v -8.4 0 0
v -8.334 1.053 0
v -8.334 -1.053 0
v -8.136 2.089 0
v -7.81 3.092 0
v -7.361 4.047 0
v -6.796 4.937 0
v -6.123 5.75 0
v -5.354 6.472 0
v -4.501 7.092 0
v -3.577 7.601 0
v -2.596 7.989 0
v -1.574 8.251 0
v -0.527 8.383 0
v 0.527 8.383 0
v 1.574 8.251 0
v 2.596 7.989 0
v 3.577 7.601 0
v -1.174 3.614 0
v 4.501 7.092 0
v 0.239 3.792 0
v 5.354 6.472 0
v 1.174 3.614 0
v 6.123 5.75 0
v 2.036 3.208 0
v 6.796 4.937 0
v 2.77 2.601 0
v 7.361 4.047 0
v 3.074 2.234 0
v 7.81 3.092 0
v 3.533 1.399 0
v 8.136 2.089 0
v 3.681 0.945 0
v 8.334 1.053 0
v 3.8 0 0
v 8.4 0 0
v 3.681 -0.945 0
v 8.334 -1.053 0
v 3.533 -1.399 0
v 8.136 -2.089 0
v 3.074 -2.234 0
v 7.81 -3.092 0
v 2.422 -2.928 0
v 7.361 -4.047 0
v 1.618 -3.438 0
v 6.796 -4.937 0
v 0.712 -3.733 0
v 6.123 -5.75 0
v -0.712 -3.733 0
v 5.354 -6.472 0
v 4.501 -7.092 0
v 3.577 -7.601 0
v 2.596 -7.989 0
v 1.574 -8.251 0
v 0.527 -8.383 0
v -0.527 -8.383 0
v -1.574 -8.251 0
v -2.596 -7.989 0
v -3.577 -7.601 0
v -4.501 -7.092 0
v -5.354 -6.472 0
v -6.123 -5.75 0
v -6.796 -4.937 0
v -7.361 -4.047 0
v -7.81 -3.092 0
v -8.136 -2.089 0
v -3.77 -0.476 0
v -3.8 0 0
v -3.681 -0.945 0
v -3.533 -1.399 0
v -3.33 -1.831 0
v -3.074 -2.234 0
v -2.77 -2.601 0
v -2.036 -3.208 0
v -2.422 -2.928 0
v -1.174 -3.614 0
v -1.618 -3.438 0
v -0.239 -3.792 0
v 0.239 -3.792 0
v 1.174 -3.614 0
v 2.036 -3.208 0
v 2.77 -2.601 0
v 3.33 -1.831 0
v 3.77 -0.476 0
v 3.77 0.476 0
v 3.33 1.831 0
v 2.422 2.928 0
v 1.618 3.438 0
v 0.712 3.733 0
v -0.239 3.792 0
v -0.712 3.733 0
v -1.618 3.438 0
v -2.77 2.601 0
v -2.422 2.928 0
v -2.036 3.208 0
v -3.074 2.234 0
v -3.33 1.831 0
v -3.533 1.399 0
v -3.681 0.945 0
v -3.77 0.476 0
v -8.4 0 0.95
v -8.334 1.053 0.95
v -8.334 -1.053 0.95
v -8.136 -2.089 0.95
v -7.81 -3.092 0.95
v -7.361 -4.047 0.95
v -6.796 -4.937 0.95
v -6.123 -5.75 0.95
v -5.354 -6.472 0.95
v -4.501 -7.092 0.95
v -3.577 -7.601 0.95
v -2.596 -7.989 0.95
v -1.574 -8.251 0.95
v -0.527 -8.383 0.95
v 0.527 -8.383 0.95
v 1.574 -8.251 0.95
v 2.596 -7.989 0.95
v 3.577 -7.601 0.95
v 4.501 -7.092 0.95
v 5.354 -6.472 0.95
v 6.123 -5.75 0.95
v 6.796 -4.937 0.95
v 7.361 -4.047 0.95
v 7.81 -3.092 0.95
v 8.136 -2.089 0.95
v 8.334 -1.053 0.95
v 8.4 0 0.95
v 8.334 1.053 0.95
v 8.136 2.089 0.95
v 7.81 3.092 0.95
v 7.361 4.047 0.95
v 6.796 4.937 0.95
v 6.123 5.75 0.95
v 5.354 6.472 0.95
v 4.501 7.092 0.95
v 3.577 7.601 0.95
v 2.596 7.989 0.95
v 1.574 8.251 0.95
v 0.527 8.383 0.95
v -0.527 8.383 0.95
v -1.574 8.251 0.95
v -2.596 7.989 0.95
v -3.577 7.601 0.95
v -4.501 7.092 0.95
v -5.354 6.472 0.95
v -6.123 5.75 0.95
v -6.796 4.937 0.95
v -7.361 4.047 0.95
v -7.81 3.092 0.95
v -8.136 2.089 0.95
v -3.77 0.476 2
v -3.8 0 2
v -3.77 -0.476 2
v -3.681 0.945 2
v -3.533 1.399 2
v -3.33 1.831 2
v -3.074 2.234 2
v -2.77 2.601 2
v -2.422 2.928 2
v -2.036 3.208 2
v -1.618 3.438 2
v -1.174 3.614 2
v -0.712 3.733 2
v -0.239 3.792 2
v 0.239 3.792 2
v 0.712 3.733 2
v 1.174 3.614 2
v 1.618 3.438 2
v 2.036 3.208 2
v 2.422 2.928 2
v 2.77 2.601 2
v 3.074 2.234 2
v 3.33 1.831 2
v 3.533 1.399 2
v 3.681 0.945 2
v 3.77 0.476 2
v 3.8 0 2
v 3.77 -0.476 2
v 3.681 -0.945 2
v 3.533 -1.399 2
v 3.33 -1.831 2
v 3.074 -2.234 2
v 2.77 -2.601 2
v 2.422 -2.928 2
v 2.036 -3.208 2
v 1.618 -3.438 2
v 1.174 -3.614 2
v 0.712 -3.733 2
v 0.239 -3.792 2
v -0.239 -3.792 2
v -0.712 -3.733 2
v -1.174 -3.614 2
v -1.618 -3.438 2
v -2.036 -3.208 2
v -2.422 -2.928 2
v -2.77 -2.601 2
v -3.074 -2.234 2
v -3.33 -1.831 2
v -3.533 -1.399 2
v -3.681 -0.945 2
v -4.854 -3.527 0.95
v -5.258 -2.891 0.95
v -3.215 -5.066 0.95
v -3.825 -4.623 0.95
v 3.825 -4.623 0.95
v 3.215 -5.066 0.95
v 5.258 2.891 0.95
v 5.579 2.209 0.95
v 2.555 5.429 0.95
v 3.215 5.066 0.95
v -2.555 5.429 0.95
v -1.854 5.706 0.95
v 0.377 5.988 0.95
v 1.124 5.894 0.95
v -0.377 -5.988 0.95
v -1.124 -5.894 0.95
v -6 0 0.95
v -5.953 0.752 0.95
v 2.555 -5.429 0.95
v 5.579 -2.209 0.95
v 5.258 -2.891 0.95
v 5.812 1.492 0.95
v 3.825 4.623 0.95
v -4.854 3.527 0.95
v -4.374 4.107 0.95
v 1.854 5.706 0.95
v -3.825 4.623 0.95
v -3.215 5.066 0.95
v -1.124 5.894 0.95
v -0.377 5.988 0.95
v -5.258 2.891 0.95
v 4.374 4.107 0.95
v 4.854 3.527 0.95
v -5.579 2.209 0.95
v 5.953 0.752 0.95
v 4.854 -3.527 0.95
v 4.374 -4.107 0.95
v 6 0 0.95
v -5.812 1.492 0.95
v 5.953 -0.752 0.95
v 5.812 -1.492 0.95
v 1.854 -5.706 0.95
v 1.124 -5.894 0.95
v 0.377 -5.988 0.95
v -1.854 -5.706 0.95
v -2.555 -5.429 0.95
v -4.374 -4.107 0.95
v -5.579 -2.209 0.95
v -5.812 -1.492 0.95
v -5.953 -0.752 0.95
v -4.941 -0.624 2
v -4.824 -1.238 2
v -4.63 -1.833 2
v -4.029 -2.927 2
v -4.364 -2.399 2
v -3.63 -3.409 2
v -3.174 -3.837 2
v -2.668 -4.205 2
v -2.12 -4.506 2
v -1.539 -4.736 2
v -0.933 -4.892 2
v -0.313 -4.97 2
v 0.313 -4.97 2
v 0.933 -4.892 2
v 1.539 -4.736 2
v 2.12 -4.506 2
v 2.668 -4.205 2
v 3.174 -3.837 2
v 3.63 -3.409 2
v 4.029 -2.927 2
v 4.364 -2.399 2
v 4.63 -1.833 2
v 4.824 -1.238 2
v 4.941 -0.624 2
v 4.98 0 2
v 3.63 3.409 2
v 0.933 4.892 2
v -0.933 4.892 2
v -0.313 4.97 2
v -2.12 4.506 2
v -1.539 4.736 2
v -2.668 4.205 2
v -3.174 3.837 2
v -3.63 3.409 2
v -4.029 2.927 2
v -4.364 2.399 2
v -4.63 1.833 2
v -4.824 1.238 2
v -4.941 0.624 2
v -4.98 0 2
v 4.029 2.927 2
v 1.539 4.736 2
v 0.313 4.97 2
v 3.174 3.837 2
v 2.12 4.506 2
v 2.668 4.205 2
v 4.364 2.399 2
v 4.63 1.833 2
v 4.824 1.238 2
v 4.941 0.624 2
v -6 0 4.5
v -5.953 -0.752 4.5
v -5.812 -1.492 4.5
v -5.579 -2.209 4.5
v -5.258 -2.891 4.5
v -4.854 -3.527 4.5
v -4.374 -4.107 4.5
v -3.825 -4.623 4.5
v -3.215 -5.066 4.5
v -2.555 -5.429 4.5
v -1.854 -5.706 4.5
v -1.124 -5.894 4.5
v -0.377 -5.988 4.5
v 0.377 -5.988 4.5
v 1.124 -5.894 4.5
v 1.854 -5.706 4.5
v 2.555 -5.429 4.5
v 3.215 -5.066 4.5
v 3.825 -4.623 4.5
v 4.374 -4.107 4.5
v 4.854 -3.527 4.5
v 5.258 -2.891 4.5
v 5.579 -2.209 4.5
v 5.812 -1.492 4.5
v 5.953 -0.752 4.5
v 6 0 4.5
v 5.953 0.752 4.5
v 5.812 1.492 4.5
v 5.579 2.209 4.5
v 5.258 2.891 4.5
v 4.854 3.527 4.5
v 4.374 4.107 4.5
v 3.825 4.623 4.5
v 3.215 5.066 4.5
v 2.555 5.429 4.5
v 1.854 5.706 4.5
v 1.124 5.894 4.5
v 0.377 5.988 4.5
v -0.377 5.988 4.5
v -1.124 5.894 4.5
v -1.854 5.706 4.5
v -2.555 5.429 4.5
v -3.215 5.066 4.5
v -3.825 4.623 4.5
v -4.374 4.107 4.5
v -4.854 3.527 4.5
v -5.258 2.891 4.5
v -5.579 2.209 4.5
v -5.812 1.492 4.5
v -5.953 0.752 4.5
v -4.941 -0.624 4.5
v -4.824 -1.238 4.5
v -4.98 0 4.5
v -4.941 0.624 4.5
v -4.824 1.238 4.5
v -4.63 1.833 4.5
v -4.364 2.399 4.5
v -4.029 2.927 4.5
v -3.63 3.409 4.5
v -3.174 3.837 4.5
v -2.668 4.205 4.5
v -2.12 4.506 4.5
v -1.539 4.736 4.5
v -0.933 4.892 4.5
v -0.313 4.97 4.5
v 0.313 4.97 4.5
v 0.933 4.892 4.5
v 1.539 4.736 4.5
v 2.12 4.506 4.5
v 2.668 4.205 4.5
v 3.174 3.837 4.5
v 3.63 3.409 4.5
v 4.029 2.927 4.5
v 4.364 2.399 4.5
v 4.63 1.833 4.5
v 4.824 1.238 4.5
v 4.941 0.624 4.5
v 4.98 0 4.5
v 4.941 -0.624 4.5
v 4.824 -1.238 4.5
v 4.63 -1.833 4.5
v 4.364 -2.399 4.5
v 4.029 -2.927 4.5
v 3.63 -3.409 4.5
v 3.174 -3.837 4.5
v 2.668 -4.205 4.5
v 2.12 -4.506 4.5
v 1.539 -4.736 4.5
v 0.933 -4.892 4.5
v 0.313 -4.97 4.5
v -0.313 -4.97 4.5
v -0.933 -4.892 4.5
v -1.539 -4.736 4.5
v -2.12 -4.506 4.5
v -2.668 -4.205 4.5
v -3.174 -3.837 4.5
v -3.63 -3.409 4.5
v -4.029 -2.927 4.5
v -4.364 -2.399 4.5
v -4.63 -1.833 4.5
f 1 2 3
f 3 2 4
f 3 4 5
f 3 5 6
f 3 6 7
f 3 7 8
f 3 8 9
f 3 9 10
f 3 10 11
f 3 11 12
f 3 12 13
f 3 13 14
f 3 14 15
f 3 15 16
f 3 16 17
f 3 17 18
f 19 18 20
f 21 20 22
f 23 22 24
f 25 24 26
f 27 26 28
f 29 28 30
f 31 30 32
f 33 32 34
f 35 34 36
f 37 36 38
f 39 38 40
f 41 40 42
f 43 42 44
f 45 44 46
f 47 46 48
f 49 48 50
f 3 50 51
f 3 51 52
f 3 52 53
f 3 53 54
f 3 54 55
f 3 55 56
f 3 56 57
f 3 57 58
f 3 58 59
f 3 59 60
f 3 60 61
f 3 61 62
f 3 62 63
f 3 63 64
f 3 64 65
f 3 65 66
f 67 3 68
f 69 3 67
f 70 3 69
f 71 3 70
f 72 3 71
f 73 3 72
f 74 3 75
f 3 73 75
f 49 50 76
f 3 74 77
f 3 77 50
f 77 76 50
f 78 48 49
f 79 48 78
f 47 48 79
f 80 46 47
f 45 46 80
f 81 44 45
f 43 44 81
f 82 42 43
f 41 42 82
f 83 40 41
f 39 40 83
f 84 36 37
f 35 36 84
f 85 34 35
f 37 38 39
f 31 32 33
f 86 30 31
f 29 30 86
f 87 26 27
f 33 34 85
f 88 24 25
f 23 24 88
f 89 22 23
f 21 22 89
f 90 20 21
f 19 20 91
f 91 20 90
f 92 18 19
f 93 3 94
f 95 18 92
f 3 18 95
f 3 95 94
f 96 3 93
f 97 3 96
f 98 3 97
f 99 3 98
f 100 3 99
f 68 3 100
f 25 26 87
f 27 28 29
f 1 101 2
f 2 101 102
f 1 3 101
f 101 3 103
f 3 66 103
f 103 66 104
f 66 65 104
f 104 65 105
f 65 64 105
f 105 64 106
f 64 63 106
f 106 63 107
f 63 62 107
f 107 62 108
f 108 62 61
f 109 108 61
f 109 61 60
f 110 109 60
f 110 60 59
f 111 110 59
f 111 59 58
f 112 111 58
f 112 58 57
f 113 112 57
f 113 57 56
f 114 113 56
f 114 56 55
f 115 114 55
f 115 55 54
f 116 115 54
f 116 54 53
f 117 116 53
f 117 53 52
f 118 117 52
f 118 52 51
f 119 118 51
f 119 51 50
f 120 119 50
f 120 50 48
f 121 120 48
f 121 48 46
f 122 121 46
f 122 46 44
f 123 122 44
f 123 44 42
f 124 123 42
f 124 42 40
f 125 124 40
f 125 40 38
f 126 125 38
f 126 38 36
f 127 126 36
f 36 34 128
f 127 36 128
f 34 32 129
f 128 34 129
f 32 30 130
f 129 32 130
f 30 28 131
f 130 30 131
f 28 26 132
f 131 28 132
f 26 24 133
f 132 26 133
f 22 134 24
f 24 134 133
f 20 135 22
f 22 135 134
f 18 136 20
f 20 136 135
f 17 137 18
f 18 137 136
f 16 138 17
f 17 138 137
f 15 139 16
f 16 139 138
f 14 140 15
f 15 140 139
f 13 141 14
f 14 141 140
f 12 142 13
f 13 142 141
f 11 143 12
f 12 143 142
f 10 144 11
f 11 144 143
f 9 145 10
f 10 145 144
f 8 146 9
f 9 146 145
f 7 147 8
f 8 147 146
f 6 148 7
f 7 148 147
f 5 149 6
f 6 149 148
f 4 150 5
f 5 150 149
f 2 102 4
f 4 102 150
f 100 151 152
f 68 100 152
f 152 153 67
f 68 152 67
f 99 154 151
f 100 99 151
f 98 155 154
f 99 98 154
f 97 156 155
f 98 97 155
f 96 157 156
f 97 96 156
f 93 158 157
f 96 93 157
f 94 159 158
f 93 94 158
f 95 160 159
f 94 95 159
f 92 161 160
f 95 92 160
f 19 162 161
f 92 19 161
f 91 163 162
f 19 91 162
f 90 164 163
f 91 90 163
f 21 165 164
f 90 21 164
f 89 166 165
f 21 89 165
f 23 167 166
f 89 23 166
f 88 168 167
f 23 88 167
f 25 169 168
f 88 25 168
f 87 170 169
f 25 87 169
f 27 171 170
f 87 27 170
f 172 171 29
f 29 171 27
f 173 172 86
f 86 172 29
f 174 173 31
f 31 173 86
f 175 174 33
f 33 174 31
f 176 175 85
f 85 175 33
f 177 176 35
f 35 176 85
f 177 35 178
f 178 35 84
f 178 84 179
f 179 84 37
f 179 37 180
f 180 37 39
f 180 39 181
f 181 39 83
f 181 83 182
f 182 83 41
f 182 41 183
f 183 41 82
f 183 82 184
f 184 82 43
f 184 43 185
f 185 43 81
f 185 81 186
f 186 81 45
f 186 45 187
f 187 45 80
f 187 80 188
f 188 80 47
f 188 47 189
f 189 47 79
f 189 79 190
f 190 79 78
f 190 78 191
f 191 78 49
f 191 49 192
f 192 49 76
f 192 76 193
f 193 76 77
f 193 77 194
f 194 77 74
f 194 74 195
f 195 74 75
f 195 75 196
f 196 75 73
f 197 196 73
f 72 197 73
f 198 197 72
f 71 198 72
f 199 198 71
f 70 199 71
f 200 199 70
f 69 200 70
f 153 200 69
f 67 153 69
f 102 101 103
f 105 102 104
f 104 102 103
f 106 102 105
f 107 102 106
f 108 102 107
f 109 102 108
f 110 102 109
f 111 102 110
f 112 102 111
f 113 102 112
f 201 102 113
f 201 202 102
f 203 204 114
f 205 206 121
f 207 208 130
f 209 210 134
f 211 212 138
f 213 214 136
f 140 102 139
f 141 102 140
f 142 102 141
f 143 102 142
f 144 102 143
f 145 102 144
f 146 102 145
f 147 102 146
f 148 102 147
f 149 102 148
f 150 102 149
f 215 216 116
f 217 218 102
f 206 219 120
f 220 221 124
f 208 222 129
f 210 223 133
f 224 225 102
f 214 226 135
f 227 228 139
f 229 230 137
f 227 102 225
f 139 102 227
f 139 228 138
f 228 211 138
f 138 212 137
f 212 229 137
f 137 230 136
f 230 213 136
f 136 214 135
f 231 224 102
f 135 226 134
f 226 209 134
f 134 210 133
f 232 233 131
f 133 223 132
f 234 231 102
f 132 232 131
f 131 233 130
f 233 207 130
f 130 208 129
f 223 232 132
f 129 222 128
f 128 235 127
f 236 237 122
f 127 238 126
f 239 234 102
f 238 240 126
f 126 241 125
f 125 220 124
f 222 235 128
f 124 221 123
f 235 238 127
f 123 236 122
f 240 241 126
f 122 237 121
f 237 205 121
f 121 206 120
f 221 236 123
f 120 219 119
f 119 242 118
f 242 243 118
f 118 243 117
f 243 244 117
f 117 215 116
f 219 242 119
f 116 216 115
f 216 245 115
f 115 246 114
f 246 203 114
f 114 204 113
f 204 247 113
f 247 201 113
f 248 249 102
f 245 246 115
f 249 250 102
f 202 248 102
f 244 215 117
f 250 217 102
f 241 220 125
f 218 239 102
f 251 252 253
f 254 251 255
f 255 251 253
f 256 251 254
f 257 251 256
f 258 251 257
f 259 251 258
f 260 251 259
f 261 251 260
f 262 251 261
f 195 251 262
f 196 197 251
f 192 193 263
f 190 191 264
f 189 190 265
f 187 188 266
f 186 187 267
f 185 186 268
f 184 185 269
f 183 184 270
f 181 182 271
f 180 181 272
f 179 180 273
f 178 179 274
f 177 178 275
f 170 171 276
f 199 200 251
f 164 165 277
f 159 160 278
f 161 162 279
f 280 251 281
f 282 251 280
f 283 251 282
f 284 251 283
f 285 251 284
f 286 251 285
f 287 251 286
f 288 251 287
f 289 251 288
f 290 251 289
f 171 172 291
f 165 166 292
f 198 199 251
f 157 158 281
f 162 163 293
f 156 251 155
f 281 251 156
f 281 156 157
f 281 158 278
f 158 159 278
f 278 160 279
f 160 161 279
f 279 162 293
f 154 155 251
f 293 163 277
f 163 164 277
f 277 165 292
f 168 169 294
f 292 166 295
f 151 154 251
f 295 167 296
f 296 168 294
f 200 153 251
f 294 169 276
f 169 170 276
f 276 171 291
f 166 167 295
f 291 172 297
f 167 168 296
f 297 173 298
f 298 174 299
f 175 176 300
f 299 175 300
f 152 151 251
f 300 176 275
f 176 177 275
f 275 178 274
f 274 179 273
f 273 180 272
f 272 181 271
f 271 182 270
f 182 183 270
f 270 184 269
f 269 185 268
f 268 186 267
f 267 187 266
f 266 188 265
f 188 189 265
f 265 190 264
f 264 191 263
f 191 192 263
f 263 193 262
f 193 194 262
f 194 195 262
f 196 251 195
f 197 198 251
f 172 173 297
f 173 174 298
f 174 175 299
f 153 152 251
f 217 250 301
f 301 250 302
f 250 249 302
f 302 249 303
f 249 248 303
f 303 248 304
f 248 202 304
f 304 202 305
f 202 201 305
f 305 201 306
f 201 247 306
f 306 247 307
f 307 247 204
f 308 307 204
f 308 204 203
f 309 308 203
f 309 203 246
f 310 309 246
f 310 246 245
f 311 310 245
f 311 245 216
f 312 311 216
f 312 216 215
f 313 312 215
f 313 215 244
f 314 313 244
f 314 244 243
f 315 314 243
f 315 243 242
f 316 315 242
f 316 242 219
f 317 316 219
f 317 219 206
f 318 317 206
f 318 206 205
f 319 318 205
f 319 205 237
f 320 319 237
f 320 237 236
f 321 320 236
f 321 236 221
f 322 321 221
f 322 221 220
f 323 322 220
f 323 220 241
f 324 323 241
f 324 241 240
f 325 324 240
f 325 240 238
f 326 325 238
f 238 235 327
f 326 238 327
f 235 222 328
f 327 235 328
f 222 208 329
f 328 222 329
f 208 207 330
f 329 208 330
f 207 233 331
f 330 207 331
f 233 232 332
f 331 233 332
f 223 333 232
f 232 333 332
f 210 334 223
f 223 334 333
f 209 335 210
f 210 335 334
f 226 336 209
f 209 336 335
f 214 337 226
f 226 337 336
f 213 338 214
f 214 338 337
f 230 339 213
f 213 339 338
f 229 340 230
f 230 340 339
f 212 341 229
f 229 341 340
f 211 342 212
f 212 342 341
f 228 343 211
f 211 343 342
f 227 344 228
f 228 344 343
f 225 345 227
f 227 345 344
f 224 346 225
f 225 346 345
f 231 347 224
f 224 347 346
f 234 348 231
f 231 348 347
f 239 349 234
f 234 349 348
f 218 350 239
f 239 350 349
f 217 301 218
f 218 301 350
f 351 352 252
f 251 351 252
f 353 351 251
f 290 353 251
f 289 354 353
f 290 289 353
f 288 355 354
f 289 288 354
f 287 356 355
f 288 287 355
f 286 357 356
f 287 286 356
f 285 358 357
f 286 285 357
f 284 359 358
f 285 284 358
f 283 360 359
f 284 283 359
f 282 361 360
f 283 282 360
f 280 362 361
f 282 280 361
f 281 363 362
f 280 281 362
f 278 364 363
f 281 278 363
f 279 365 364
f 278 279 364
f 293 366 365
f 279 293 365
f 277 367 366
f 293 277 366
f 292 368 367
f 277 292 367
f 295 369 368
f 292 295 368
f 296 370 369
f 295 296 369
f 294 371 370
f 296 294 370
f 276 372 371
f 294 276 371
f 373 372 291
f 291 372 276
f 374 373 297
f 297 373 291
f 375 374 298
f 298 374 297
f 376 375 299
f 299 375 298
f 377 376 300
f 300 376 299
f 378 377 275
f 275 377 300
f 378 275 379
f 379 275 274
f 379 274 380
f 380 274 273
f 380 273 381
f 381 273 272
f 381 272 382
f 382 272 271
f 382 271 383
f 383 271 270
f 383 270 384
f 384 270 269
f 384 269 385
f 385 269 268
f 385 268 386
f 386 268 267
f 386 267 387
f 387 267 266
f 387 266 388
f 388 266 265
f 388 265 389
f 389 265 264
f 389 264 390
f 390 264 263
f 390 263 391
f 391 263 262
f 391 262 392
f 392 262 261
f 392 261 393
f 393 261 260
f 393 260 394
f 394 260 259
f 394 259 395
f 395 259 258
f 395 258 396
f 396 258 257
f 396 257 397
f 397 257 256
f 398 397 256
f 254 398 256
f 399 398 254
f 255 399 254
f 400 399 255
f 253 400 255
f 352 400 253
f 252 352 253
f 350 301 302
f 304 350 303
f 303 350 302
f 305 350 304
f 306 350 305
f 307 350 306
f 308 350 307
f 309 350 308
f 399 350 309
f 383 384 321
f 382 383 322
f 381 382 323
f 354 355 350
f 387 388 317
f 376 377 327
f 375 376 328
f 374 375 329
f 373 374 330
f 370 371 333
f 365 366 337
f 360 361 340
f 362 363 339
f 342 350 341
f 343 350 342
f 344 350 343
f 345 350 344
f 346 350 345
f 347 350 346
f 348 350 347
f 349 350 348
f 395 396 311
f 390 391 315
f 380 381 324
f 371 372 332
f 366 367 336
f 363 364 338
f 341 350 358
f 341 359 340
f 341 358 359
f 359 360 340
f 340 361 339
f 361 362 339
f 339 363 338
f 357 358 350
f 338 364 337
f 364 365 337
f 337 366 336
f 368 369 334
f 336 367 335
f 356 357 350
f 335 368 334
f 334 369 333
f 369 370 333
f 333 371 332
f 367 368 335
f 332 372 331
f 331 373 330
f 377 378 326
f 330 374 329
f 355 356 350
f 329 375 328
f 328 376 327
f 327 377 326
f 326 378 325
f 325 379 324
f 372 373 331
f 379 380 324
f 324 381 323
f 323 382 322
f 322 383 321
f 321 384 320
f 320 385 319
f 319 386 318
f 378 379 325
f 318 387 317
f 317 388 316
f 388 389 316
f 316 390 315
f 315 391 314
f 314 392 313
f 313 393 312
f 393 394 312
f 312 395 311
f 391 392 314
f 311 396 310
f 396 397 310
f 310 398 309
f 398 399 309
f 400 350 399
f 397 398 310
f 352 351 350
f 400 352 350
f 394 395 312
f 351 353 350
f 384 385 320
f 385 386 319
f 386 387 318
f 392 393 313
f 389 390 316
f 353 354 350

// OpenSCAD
// 623/624 bearing belt guide
// Based on Josef Prusa vanilla belt-guide design (https://github.com/josefprusa/Prusa3-vanilla)
// By Julio Galaron (@jgalaron)
// GNU GPL v3

wall      = 1.2;
clearence = 0;

module base(){
	union(){
    	cylinder(r=6, h=4.5, $fn=50);
	   	cylinder(r=6+2*wall, h=0.95, $fn=50);
	}
}

module holes(){
    translate([0,0,2])  cylinder(r=9.96/2+clearence, h=10, $fn=50); 
	translate([0,0,-1]) cylinder(r=5+wall+clearence-2*wall, h=10, $fn=50);
}

//final part
difference(){
	base();
	holes(); 
}
